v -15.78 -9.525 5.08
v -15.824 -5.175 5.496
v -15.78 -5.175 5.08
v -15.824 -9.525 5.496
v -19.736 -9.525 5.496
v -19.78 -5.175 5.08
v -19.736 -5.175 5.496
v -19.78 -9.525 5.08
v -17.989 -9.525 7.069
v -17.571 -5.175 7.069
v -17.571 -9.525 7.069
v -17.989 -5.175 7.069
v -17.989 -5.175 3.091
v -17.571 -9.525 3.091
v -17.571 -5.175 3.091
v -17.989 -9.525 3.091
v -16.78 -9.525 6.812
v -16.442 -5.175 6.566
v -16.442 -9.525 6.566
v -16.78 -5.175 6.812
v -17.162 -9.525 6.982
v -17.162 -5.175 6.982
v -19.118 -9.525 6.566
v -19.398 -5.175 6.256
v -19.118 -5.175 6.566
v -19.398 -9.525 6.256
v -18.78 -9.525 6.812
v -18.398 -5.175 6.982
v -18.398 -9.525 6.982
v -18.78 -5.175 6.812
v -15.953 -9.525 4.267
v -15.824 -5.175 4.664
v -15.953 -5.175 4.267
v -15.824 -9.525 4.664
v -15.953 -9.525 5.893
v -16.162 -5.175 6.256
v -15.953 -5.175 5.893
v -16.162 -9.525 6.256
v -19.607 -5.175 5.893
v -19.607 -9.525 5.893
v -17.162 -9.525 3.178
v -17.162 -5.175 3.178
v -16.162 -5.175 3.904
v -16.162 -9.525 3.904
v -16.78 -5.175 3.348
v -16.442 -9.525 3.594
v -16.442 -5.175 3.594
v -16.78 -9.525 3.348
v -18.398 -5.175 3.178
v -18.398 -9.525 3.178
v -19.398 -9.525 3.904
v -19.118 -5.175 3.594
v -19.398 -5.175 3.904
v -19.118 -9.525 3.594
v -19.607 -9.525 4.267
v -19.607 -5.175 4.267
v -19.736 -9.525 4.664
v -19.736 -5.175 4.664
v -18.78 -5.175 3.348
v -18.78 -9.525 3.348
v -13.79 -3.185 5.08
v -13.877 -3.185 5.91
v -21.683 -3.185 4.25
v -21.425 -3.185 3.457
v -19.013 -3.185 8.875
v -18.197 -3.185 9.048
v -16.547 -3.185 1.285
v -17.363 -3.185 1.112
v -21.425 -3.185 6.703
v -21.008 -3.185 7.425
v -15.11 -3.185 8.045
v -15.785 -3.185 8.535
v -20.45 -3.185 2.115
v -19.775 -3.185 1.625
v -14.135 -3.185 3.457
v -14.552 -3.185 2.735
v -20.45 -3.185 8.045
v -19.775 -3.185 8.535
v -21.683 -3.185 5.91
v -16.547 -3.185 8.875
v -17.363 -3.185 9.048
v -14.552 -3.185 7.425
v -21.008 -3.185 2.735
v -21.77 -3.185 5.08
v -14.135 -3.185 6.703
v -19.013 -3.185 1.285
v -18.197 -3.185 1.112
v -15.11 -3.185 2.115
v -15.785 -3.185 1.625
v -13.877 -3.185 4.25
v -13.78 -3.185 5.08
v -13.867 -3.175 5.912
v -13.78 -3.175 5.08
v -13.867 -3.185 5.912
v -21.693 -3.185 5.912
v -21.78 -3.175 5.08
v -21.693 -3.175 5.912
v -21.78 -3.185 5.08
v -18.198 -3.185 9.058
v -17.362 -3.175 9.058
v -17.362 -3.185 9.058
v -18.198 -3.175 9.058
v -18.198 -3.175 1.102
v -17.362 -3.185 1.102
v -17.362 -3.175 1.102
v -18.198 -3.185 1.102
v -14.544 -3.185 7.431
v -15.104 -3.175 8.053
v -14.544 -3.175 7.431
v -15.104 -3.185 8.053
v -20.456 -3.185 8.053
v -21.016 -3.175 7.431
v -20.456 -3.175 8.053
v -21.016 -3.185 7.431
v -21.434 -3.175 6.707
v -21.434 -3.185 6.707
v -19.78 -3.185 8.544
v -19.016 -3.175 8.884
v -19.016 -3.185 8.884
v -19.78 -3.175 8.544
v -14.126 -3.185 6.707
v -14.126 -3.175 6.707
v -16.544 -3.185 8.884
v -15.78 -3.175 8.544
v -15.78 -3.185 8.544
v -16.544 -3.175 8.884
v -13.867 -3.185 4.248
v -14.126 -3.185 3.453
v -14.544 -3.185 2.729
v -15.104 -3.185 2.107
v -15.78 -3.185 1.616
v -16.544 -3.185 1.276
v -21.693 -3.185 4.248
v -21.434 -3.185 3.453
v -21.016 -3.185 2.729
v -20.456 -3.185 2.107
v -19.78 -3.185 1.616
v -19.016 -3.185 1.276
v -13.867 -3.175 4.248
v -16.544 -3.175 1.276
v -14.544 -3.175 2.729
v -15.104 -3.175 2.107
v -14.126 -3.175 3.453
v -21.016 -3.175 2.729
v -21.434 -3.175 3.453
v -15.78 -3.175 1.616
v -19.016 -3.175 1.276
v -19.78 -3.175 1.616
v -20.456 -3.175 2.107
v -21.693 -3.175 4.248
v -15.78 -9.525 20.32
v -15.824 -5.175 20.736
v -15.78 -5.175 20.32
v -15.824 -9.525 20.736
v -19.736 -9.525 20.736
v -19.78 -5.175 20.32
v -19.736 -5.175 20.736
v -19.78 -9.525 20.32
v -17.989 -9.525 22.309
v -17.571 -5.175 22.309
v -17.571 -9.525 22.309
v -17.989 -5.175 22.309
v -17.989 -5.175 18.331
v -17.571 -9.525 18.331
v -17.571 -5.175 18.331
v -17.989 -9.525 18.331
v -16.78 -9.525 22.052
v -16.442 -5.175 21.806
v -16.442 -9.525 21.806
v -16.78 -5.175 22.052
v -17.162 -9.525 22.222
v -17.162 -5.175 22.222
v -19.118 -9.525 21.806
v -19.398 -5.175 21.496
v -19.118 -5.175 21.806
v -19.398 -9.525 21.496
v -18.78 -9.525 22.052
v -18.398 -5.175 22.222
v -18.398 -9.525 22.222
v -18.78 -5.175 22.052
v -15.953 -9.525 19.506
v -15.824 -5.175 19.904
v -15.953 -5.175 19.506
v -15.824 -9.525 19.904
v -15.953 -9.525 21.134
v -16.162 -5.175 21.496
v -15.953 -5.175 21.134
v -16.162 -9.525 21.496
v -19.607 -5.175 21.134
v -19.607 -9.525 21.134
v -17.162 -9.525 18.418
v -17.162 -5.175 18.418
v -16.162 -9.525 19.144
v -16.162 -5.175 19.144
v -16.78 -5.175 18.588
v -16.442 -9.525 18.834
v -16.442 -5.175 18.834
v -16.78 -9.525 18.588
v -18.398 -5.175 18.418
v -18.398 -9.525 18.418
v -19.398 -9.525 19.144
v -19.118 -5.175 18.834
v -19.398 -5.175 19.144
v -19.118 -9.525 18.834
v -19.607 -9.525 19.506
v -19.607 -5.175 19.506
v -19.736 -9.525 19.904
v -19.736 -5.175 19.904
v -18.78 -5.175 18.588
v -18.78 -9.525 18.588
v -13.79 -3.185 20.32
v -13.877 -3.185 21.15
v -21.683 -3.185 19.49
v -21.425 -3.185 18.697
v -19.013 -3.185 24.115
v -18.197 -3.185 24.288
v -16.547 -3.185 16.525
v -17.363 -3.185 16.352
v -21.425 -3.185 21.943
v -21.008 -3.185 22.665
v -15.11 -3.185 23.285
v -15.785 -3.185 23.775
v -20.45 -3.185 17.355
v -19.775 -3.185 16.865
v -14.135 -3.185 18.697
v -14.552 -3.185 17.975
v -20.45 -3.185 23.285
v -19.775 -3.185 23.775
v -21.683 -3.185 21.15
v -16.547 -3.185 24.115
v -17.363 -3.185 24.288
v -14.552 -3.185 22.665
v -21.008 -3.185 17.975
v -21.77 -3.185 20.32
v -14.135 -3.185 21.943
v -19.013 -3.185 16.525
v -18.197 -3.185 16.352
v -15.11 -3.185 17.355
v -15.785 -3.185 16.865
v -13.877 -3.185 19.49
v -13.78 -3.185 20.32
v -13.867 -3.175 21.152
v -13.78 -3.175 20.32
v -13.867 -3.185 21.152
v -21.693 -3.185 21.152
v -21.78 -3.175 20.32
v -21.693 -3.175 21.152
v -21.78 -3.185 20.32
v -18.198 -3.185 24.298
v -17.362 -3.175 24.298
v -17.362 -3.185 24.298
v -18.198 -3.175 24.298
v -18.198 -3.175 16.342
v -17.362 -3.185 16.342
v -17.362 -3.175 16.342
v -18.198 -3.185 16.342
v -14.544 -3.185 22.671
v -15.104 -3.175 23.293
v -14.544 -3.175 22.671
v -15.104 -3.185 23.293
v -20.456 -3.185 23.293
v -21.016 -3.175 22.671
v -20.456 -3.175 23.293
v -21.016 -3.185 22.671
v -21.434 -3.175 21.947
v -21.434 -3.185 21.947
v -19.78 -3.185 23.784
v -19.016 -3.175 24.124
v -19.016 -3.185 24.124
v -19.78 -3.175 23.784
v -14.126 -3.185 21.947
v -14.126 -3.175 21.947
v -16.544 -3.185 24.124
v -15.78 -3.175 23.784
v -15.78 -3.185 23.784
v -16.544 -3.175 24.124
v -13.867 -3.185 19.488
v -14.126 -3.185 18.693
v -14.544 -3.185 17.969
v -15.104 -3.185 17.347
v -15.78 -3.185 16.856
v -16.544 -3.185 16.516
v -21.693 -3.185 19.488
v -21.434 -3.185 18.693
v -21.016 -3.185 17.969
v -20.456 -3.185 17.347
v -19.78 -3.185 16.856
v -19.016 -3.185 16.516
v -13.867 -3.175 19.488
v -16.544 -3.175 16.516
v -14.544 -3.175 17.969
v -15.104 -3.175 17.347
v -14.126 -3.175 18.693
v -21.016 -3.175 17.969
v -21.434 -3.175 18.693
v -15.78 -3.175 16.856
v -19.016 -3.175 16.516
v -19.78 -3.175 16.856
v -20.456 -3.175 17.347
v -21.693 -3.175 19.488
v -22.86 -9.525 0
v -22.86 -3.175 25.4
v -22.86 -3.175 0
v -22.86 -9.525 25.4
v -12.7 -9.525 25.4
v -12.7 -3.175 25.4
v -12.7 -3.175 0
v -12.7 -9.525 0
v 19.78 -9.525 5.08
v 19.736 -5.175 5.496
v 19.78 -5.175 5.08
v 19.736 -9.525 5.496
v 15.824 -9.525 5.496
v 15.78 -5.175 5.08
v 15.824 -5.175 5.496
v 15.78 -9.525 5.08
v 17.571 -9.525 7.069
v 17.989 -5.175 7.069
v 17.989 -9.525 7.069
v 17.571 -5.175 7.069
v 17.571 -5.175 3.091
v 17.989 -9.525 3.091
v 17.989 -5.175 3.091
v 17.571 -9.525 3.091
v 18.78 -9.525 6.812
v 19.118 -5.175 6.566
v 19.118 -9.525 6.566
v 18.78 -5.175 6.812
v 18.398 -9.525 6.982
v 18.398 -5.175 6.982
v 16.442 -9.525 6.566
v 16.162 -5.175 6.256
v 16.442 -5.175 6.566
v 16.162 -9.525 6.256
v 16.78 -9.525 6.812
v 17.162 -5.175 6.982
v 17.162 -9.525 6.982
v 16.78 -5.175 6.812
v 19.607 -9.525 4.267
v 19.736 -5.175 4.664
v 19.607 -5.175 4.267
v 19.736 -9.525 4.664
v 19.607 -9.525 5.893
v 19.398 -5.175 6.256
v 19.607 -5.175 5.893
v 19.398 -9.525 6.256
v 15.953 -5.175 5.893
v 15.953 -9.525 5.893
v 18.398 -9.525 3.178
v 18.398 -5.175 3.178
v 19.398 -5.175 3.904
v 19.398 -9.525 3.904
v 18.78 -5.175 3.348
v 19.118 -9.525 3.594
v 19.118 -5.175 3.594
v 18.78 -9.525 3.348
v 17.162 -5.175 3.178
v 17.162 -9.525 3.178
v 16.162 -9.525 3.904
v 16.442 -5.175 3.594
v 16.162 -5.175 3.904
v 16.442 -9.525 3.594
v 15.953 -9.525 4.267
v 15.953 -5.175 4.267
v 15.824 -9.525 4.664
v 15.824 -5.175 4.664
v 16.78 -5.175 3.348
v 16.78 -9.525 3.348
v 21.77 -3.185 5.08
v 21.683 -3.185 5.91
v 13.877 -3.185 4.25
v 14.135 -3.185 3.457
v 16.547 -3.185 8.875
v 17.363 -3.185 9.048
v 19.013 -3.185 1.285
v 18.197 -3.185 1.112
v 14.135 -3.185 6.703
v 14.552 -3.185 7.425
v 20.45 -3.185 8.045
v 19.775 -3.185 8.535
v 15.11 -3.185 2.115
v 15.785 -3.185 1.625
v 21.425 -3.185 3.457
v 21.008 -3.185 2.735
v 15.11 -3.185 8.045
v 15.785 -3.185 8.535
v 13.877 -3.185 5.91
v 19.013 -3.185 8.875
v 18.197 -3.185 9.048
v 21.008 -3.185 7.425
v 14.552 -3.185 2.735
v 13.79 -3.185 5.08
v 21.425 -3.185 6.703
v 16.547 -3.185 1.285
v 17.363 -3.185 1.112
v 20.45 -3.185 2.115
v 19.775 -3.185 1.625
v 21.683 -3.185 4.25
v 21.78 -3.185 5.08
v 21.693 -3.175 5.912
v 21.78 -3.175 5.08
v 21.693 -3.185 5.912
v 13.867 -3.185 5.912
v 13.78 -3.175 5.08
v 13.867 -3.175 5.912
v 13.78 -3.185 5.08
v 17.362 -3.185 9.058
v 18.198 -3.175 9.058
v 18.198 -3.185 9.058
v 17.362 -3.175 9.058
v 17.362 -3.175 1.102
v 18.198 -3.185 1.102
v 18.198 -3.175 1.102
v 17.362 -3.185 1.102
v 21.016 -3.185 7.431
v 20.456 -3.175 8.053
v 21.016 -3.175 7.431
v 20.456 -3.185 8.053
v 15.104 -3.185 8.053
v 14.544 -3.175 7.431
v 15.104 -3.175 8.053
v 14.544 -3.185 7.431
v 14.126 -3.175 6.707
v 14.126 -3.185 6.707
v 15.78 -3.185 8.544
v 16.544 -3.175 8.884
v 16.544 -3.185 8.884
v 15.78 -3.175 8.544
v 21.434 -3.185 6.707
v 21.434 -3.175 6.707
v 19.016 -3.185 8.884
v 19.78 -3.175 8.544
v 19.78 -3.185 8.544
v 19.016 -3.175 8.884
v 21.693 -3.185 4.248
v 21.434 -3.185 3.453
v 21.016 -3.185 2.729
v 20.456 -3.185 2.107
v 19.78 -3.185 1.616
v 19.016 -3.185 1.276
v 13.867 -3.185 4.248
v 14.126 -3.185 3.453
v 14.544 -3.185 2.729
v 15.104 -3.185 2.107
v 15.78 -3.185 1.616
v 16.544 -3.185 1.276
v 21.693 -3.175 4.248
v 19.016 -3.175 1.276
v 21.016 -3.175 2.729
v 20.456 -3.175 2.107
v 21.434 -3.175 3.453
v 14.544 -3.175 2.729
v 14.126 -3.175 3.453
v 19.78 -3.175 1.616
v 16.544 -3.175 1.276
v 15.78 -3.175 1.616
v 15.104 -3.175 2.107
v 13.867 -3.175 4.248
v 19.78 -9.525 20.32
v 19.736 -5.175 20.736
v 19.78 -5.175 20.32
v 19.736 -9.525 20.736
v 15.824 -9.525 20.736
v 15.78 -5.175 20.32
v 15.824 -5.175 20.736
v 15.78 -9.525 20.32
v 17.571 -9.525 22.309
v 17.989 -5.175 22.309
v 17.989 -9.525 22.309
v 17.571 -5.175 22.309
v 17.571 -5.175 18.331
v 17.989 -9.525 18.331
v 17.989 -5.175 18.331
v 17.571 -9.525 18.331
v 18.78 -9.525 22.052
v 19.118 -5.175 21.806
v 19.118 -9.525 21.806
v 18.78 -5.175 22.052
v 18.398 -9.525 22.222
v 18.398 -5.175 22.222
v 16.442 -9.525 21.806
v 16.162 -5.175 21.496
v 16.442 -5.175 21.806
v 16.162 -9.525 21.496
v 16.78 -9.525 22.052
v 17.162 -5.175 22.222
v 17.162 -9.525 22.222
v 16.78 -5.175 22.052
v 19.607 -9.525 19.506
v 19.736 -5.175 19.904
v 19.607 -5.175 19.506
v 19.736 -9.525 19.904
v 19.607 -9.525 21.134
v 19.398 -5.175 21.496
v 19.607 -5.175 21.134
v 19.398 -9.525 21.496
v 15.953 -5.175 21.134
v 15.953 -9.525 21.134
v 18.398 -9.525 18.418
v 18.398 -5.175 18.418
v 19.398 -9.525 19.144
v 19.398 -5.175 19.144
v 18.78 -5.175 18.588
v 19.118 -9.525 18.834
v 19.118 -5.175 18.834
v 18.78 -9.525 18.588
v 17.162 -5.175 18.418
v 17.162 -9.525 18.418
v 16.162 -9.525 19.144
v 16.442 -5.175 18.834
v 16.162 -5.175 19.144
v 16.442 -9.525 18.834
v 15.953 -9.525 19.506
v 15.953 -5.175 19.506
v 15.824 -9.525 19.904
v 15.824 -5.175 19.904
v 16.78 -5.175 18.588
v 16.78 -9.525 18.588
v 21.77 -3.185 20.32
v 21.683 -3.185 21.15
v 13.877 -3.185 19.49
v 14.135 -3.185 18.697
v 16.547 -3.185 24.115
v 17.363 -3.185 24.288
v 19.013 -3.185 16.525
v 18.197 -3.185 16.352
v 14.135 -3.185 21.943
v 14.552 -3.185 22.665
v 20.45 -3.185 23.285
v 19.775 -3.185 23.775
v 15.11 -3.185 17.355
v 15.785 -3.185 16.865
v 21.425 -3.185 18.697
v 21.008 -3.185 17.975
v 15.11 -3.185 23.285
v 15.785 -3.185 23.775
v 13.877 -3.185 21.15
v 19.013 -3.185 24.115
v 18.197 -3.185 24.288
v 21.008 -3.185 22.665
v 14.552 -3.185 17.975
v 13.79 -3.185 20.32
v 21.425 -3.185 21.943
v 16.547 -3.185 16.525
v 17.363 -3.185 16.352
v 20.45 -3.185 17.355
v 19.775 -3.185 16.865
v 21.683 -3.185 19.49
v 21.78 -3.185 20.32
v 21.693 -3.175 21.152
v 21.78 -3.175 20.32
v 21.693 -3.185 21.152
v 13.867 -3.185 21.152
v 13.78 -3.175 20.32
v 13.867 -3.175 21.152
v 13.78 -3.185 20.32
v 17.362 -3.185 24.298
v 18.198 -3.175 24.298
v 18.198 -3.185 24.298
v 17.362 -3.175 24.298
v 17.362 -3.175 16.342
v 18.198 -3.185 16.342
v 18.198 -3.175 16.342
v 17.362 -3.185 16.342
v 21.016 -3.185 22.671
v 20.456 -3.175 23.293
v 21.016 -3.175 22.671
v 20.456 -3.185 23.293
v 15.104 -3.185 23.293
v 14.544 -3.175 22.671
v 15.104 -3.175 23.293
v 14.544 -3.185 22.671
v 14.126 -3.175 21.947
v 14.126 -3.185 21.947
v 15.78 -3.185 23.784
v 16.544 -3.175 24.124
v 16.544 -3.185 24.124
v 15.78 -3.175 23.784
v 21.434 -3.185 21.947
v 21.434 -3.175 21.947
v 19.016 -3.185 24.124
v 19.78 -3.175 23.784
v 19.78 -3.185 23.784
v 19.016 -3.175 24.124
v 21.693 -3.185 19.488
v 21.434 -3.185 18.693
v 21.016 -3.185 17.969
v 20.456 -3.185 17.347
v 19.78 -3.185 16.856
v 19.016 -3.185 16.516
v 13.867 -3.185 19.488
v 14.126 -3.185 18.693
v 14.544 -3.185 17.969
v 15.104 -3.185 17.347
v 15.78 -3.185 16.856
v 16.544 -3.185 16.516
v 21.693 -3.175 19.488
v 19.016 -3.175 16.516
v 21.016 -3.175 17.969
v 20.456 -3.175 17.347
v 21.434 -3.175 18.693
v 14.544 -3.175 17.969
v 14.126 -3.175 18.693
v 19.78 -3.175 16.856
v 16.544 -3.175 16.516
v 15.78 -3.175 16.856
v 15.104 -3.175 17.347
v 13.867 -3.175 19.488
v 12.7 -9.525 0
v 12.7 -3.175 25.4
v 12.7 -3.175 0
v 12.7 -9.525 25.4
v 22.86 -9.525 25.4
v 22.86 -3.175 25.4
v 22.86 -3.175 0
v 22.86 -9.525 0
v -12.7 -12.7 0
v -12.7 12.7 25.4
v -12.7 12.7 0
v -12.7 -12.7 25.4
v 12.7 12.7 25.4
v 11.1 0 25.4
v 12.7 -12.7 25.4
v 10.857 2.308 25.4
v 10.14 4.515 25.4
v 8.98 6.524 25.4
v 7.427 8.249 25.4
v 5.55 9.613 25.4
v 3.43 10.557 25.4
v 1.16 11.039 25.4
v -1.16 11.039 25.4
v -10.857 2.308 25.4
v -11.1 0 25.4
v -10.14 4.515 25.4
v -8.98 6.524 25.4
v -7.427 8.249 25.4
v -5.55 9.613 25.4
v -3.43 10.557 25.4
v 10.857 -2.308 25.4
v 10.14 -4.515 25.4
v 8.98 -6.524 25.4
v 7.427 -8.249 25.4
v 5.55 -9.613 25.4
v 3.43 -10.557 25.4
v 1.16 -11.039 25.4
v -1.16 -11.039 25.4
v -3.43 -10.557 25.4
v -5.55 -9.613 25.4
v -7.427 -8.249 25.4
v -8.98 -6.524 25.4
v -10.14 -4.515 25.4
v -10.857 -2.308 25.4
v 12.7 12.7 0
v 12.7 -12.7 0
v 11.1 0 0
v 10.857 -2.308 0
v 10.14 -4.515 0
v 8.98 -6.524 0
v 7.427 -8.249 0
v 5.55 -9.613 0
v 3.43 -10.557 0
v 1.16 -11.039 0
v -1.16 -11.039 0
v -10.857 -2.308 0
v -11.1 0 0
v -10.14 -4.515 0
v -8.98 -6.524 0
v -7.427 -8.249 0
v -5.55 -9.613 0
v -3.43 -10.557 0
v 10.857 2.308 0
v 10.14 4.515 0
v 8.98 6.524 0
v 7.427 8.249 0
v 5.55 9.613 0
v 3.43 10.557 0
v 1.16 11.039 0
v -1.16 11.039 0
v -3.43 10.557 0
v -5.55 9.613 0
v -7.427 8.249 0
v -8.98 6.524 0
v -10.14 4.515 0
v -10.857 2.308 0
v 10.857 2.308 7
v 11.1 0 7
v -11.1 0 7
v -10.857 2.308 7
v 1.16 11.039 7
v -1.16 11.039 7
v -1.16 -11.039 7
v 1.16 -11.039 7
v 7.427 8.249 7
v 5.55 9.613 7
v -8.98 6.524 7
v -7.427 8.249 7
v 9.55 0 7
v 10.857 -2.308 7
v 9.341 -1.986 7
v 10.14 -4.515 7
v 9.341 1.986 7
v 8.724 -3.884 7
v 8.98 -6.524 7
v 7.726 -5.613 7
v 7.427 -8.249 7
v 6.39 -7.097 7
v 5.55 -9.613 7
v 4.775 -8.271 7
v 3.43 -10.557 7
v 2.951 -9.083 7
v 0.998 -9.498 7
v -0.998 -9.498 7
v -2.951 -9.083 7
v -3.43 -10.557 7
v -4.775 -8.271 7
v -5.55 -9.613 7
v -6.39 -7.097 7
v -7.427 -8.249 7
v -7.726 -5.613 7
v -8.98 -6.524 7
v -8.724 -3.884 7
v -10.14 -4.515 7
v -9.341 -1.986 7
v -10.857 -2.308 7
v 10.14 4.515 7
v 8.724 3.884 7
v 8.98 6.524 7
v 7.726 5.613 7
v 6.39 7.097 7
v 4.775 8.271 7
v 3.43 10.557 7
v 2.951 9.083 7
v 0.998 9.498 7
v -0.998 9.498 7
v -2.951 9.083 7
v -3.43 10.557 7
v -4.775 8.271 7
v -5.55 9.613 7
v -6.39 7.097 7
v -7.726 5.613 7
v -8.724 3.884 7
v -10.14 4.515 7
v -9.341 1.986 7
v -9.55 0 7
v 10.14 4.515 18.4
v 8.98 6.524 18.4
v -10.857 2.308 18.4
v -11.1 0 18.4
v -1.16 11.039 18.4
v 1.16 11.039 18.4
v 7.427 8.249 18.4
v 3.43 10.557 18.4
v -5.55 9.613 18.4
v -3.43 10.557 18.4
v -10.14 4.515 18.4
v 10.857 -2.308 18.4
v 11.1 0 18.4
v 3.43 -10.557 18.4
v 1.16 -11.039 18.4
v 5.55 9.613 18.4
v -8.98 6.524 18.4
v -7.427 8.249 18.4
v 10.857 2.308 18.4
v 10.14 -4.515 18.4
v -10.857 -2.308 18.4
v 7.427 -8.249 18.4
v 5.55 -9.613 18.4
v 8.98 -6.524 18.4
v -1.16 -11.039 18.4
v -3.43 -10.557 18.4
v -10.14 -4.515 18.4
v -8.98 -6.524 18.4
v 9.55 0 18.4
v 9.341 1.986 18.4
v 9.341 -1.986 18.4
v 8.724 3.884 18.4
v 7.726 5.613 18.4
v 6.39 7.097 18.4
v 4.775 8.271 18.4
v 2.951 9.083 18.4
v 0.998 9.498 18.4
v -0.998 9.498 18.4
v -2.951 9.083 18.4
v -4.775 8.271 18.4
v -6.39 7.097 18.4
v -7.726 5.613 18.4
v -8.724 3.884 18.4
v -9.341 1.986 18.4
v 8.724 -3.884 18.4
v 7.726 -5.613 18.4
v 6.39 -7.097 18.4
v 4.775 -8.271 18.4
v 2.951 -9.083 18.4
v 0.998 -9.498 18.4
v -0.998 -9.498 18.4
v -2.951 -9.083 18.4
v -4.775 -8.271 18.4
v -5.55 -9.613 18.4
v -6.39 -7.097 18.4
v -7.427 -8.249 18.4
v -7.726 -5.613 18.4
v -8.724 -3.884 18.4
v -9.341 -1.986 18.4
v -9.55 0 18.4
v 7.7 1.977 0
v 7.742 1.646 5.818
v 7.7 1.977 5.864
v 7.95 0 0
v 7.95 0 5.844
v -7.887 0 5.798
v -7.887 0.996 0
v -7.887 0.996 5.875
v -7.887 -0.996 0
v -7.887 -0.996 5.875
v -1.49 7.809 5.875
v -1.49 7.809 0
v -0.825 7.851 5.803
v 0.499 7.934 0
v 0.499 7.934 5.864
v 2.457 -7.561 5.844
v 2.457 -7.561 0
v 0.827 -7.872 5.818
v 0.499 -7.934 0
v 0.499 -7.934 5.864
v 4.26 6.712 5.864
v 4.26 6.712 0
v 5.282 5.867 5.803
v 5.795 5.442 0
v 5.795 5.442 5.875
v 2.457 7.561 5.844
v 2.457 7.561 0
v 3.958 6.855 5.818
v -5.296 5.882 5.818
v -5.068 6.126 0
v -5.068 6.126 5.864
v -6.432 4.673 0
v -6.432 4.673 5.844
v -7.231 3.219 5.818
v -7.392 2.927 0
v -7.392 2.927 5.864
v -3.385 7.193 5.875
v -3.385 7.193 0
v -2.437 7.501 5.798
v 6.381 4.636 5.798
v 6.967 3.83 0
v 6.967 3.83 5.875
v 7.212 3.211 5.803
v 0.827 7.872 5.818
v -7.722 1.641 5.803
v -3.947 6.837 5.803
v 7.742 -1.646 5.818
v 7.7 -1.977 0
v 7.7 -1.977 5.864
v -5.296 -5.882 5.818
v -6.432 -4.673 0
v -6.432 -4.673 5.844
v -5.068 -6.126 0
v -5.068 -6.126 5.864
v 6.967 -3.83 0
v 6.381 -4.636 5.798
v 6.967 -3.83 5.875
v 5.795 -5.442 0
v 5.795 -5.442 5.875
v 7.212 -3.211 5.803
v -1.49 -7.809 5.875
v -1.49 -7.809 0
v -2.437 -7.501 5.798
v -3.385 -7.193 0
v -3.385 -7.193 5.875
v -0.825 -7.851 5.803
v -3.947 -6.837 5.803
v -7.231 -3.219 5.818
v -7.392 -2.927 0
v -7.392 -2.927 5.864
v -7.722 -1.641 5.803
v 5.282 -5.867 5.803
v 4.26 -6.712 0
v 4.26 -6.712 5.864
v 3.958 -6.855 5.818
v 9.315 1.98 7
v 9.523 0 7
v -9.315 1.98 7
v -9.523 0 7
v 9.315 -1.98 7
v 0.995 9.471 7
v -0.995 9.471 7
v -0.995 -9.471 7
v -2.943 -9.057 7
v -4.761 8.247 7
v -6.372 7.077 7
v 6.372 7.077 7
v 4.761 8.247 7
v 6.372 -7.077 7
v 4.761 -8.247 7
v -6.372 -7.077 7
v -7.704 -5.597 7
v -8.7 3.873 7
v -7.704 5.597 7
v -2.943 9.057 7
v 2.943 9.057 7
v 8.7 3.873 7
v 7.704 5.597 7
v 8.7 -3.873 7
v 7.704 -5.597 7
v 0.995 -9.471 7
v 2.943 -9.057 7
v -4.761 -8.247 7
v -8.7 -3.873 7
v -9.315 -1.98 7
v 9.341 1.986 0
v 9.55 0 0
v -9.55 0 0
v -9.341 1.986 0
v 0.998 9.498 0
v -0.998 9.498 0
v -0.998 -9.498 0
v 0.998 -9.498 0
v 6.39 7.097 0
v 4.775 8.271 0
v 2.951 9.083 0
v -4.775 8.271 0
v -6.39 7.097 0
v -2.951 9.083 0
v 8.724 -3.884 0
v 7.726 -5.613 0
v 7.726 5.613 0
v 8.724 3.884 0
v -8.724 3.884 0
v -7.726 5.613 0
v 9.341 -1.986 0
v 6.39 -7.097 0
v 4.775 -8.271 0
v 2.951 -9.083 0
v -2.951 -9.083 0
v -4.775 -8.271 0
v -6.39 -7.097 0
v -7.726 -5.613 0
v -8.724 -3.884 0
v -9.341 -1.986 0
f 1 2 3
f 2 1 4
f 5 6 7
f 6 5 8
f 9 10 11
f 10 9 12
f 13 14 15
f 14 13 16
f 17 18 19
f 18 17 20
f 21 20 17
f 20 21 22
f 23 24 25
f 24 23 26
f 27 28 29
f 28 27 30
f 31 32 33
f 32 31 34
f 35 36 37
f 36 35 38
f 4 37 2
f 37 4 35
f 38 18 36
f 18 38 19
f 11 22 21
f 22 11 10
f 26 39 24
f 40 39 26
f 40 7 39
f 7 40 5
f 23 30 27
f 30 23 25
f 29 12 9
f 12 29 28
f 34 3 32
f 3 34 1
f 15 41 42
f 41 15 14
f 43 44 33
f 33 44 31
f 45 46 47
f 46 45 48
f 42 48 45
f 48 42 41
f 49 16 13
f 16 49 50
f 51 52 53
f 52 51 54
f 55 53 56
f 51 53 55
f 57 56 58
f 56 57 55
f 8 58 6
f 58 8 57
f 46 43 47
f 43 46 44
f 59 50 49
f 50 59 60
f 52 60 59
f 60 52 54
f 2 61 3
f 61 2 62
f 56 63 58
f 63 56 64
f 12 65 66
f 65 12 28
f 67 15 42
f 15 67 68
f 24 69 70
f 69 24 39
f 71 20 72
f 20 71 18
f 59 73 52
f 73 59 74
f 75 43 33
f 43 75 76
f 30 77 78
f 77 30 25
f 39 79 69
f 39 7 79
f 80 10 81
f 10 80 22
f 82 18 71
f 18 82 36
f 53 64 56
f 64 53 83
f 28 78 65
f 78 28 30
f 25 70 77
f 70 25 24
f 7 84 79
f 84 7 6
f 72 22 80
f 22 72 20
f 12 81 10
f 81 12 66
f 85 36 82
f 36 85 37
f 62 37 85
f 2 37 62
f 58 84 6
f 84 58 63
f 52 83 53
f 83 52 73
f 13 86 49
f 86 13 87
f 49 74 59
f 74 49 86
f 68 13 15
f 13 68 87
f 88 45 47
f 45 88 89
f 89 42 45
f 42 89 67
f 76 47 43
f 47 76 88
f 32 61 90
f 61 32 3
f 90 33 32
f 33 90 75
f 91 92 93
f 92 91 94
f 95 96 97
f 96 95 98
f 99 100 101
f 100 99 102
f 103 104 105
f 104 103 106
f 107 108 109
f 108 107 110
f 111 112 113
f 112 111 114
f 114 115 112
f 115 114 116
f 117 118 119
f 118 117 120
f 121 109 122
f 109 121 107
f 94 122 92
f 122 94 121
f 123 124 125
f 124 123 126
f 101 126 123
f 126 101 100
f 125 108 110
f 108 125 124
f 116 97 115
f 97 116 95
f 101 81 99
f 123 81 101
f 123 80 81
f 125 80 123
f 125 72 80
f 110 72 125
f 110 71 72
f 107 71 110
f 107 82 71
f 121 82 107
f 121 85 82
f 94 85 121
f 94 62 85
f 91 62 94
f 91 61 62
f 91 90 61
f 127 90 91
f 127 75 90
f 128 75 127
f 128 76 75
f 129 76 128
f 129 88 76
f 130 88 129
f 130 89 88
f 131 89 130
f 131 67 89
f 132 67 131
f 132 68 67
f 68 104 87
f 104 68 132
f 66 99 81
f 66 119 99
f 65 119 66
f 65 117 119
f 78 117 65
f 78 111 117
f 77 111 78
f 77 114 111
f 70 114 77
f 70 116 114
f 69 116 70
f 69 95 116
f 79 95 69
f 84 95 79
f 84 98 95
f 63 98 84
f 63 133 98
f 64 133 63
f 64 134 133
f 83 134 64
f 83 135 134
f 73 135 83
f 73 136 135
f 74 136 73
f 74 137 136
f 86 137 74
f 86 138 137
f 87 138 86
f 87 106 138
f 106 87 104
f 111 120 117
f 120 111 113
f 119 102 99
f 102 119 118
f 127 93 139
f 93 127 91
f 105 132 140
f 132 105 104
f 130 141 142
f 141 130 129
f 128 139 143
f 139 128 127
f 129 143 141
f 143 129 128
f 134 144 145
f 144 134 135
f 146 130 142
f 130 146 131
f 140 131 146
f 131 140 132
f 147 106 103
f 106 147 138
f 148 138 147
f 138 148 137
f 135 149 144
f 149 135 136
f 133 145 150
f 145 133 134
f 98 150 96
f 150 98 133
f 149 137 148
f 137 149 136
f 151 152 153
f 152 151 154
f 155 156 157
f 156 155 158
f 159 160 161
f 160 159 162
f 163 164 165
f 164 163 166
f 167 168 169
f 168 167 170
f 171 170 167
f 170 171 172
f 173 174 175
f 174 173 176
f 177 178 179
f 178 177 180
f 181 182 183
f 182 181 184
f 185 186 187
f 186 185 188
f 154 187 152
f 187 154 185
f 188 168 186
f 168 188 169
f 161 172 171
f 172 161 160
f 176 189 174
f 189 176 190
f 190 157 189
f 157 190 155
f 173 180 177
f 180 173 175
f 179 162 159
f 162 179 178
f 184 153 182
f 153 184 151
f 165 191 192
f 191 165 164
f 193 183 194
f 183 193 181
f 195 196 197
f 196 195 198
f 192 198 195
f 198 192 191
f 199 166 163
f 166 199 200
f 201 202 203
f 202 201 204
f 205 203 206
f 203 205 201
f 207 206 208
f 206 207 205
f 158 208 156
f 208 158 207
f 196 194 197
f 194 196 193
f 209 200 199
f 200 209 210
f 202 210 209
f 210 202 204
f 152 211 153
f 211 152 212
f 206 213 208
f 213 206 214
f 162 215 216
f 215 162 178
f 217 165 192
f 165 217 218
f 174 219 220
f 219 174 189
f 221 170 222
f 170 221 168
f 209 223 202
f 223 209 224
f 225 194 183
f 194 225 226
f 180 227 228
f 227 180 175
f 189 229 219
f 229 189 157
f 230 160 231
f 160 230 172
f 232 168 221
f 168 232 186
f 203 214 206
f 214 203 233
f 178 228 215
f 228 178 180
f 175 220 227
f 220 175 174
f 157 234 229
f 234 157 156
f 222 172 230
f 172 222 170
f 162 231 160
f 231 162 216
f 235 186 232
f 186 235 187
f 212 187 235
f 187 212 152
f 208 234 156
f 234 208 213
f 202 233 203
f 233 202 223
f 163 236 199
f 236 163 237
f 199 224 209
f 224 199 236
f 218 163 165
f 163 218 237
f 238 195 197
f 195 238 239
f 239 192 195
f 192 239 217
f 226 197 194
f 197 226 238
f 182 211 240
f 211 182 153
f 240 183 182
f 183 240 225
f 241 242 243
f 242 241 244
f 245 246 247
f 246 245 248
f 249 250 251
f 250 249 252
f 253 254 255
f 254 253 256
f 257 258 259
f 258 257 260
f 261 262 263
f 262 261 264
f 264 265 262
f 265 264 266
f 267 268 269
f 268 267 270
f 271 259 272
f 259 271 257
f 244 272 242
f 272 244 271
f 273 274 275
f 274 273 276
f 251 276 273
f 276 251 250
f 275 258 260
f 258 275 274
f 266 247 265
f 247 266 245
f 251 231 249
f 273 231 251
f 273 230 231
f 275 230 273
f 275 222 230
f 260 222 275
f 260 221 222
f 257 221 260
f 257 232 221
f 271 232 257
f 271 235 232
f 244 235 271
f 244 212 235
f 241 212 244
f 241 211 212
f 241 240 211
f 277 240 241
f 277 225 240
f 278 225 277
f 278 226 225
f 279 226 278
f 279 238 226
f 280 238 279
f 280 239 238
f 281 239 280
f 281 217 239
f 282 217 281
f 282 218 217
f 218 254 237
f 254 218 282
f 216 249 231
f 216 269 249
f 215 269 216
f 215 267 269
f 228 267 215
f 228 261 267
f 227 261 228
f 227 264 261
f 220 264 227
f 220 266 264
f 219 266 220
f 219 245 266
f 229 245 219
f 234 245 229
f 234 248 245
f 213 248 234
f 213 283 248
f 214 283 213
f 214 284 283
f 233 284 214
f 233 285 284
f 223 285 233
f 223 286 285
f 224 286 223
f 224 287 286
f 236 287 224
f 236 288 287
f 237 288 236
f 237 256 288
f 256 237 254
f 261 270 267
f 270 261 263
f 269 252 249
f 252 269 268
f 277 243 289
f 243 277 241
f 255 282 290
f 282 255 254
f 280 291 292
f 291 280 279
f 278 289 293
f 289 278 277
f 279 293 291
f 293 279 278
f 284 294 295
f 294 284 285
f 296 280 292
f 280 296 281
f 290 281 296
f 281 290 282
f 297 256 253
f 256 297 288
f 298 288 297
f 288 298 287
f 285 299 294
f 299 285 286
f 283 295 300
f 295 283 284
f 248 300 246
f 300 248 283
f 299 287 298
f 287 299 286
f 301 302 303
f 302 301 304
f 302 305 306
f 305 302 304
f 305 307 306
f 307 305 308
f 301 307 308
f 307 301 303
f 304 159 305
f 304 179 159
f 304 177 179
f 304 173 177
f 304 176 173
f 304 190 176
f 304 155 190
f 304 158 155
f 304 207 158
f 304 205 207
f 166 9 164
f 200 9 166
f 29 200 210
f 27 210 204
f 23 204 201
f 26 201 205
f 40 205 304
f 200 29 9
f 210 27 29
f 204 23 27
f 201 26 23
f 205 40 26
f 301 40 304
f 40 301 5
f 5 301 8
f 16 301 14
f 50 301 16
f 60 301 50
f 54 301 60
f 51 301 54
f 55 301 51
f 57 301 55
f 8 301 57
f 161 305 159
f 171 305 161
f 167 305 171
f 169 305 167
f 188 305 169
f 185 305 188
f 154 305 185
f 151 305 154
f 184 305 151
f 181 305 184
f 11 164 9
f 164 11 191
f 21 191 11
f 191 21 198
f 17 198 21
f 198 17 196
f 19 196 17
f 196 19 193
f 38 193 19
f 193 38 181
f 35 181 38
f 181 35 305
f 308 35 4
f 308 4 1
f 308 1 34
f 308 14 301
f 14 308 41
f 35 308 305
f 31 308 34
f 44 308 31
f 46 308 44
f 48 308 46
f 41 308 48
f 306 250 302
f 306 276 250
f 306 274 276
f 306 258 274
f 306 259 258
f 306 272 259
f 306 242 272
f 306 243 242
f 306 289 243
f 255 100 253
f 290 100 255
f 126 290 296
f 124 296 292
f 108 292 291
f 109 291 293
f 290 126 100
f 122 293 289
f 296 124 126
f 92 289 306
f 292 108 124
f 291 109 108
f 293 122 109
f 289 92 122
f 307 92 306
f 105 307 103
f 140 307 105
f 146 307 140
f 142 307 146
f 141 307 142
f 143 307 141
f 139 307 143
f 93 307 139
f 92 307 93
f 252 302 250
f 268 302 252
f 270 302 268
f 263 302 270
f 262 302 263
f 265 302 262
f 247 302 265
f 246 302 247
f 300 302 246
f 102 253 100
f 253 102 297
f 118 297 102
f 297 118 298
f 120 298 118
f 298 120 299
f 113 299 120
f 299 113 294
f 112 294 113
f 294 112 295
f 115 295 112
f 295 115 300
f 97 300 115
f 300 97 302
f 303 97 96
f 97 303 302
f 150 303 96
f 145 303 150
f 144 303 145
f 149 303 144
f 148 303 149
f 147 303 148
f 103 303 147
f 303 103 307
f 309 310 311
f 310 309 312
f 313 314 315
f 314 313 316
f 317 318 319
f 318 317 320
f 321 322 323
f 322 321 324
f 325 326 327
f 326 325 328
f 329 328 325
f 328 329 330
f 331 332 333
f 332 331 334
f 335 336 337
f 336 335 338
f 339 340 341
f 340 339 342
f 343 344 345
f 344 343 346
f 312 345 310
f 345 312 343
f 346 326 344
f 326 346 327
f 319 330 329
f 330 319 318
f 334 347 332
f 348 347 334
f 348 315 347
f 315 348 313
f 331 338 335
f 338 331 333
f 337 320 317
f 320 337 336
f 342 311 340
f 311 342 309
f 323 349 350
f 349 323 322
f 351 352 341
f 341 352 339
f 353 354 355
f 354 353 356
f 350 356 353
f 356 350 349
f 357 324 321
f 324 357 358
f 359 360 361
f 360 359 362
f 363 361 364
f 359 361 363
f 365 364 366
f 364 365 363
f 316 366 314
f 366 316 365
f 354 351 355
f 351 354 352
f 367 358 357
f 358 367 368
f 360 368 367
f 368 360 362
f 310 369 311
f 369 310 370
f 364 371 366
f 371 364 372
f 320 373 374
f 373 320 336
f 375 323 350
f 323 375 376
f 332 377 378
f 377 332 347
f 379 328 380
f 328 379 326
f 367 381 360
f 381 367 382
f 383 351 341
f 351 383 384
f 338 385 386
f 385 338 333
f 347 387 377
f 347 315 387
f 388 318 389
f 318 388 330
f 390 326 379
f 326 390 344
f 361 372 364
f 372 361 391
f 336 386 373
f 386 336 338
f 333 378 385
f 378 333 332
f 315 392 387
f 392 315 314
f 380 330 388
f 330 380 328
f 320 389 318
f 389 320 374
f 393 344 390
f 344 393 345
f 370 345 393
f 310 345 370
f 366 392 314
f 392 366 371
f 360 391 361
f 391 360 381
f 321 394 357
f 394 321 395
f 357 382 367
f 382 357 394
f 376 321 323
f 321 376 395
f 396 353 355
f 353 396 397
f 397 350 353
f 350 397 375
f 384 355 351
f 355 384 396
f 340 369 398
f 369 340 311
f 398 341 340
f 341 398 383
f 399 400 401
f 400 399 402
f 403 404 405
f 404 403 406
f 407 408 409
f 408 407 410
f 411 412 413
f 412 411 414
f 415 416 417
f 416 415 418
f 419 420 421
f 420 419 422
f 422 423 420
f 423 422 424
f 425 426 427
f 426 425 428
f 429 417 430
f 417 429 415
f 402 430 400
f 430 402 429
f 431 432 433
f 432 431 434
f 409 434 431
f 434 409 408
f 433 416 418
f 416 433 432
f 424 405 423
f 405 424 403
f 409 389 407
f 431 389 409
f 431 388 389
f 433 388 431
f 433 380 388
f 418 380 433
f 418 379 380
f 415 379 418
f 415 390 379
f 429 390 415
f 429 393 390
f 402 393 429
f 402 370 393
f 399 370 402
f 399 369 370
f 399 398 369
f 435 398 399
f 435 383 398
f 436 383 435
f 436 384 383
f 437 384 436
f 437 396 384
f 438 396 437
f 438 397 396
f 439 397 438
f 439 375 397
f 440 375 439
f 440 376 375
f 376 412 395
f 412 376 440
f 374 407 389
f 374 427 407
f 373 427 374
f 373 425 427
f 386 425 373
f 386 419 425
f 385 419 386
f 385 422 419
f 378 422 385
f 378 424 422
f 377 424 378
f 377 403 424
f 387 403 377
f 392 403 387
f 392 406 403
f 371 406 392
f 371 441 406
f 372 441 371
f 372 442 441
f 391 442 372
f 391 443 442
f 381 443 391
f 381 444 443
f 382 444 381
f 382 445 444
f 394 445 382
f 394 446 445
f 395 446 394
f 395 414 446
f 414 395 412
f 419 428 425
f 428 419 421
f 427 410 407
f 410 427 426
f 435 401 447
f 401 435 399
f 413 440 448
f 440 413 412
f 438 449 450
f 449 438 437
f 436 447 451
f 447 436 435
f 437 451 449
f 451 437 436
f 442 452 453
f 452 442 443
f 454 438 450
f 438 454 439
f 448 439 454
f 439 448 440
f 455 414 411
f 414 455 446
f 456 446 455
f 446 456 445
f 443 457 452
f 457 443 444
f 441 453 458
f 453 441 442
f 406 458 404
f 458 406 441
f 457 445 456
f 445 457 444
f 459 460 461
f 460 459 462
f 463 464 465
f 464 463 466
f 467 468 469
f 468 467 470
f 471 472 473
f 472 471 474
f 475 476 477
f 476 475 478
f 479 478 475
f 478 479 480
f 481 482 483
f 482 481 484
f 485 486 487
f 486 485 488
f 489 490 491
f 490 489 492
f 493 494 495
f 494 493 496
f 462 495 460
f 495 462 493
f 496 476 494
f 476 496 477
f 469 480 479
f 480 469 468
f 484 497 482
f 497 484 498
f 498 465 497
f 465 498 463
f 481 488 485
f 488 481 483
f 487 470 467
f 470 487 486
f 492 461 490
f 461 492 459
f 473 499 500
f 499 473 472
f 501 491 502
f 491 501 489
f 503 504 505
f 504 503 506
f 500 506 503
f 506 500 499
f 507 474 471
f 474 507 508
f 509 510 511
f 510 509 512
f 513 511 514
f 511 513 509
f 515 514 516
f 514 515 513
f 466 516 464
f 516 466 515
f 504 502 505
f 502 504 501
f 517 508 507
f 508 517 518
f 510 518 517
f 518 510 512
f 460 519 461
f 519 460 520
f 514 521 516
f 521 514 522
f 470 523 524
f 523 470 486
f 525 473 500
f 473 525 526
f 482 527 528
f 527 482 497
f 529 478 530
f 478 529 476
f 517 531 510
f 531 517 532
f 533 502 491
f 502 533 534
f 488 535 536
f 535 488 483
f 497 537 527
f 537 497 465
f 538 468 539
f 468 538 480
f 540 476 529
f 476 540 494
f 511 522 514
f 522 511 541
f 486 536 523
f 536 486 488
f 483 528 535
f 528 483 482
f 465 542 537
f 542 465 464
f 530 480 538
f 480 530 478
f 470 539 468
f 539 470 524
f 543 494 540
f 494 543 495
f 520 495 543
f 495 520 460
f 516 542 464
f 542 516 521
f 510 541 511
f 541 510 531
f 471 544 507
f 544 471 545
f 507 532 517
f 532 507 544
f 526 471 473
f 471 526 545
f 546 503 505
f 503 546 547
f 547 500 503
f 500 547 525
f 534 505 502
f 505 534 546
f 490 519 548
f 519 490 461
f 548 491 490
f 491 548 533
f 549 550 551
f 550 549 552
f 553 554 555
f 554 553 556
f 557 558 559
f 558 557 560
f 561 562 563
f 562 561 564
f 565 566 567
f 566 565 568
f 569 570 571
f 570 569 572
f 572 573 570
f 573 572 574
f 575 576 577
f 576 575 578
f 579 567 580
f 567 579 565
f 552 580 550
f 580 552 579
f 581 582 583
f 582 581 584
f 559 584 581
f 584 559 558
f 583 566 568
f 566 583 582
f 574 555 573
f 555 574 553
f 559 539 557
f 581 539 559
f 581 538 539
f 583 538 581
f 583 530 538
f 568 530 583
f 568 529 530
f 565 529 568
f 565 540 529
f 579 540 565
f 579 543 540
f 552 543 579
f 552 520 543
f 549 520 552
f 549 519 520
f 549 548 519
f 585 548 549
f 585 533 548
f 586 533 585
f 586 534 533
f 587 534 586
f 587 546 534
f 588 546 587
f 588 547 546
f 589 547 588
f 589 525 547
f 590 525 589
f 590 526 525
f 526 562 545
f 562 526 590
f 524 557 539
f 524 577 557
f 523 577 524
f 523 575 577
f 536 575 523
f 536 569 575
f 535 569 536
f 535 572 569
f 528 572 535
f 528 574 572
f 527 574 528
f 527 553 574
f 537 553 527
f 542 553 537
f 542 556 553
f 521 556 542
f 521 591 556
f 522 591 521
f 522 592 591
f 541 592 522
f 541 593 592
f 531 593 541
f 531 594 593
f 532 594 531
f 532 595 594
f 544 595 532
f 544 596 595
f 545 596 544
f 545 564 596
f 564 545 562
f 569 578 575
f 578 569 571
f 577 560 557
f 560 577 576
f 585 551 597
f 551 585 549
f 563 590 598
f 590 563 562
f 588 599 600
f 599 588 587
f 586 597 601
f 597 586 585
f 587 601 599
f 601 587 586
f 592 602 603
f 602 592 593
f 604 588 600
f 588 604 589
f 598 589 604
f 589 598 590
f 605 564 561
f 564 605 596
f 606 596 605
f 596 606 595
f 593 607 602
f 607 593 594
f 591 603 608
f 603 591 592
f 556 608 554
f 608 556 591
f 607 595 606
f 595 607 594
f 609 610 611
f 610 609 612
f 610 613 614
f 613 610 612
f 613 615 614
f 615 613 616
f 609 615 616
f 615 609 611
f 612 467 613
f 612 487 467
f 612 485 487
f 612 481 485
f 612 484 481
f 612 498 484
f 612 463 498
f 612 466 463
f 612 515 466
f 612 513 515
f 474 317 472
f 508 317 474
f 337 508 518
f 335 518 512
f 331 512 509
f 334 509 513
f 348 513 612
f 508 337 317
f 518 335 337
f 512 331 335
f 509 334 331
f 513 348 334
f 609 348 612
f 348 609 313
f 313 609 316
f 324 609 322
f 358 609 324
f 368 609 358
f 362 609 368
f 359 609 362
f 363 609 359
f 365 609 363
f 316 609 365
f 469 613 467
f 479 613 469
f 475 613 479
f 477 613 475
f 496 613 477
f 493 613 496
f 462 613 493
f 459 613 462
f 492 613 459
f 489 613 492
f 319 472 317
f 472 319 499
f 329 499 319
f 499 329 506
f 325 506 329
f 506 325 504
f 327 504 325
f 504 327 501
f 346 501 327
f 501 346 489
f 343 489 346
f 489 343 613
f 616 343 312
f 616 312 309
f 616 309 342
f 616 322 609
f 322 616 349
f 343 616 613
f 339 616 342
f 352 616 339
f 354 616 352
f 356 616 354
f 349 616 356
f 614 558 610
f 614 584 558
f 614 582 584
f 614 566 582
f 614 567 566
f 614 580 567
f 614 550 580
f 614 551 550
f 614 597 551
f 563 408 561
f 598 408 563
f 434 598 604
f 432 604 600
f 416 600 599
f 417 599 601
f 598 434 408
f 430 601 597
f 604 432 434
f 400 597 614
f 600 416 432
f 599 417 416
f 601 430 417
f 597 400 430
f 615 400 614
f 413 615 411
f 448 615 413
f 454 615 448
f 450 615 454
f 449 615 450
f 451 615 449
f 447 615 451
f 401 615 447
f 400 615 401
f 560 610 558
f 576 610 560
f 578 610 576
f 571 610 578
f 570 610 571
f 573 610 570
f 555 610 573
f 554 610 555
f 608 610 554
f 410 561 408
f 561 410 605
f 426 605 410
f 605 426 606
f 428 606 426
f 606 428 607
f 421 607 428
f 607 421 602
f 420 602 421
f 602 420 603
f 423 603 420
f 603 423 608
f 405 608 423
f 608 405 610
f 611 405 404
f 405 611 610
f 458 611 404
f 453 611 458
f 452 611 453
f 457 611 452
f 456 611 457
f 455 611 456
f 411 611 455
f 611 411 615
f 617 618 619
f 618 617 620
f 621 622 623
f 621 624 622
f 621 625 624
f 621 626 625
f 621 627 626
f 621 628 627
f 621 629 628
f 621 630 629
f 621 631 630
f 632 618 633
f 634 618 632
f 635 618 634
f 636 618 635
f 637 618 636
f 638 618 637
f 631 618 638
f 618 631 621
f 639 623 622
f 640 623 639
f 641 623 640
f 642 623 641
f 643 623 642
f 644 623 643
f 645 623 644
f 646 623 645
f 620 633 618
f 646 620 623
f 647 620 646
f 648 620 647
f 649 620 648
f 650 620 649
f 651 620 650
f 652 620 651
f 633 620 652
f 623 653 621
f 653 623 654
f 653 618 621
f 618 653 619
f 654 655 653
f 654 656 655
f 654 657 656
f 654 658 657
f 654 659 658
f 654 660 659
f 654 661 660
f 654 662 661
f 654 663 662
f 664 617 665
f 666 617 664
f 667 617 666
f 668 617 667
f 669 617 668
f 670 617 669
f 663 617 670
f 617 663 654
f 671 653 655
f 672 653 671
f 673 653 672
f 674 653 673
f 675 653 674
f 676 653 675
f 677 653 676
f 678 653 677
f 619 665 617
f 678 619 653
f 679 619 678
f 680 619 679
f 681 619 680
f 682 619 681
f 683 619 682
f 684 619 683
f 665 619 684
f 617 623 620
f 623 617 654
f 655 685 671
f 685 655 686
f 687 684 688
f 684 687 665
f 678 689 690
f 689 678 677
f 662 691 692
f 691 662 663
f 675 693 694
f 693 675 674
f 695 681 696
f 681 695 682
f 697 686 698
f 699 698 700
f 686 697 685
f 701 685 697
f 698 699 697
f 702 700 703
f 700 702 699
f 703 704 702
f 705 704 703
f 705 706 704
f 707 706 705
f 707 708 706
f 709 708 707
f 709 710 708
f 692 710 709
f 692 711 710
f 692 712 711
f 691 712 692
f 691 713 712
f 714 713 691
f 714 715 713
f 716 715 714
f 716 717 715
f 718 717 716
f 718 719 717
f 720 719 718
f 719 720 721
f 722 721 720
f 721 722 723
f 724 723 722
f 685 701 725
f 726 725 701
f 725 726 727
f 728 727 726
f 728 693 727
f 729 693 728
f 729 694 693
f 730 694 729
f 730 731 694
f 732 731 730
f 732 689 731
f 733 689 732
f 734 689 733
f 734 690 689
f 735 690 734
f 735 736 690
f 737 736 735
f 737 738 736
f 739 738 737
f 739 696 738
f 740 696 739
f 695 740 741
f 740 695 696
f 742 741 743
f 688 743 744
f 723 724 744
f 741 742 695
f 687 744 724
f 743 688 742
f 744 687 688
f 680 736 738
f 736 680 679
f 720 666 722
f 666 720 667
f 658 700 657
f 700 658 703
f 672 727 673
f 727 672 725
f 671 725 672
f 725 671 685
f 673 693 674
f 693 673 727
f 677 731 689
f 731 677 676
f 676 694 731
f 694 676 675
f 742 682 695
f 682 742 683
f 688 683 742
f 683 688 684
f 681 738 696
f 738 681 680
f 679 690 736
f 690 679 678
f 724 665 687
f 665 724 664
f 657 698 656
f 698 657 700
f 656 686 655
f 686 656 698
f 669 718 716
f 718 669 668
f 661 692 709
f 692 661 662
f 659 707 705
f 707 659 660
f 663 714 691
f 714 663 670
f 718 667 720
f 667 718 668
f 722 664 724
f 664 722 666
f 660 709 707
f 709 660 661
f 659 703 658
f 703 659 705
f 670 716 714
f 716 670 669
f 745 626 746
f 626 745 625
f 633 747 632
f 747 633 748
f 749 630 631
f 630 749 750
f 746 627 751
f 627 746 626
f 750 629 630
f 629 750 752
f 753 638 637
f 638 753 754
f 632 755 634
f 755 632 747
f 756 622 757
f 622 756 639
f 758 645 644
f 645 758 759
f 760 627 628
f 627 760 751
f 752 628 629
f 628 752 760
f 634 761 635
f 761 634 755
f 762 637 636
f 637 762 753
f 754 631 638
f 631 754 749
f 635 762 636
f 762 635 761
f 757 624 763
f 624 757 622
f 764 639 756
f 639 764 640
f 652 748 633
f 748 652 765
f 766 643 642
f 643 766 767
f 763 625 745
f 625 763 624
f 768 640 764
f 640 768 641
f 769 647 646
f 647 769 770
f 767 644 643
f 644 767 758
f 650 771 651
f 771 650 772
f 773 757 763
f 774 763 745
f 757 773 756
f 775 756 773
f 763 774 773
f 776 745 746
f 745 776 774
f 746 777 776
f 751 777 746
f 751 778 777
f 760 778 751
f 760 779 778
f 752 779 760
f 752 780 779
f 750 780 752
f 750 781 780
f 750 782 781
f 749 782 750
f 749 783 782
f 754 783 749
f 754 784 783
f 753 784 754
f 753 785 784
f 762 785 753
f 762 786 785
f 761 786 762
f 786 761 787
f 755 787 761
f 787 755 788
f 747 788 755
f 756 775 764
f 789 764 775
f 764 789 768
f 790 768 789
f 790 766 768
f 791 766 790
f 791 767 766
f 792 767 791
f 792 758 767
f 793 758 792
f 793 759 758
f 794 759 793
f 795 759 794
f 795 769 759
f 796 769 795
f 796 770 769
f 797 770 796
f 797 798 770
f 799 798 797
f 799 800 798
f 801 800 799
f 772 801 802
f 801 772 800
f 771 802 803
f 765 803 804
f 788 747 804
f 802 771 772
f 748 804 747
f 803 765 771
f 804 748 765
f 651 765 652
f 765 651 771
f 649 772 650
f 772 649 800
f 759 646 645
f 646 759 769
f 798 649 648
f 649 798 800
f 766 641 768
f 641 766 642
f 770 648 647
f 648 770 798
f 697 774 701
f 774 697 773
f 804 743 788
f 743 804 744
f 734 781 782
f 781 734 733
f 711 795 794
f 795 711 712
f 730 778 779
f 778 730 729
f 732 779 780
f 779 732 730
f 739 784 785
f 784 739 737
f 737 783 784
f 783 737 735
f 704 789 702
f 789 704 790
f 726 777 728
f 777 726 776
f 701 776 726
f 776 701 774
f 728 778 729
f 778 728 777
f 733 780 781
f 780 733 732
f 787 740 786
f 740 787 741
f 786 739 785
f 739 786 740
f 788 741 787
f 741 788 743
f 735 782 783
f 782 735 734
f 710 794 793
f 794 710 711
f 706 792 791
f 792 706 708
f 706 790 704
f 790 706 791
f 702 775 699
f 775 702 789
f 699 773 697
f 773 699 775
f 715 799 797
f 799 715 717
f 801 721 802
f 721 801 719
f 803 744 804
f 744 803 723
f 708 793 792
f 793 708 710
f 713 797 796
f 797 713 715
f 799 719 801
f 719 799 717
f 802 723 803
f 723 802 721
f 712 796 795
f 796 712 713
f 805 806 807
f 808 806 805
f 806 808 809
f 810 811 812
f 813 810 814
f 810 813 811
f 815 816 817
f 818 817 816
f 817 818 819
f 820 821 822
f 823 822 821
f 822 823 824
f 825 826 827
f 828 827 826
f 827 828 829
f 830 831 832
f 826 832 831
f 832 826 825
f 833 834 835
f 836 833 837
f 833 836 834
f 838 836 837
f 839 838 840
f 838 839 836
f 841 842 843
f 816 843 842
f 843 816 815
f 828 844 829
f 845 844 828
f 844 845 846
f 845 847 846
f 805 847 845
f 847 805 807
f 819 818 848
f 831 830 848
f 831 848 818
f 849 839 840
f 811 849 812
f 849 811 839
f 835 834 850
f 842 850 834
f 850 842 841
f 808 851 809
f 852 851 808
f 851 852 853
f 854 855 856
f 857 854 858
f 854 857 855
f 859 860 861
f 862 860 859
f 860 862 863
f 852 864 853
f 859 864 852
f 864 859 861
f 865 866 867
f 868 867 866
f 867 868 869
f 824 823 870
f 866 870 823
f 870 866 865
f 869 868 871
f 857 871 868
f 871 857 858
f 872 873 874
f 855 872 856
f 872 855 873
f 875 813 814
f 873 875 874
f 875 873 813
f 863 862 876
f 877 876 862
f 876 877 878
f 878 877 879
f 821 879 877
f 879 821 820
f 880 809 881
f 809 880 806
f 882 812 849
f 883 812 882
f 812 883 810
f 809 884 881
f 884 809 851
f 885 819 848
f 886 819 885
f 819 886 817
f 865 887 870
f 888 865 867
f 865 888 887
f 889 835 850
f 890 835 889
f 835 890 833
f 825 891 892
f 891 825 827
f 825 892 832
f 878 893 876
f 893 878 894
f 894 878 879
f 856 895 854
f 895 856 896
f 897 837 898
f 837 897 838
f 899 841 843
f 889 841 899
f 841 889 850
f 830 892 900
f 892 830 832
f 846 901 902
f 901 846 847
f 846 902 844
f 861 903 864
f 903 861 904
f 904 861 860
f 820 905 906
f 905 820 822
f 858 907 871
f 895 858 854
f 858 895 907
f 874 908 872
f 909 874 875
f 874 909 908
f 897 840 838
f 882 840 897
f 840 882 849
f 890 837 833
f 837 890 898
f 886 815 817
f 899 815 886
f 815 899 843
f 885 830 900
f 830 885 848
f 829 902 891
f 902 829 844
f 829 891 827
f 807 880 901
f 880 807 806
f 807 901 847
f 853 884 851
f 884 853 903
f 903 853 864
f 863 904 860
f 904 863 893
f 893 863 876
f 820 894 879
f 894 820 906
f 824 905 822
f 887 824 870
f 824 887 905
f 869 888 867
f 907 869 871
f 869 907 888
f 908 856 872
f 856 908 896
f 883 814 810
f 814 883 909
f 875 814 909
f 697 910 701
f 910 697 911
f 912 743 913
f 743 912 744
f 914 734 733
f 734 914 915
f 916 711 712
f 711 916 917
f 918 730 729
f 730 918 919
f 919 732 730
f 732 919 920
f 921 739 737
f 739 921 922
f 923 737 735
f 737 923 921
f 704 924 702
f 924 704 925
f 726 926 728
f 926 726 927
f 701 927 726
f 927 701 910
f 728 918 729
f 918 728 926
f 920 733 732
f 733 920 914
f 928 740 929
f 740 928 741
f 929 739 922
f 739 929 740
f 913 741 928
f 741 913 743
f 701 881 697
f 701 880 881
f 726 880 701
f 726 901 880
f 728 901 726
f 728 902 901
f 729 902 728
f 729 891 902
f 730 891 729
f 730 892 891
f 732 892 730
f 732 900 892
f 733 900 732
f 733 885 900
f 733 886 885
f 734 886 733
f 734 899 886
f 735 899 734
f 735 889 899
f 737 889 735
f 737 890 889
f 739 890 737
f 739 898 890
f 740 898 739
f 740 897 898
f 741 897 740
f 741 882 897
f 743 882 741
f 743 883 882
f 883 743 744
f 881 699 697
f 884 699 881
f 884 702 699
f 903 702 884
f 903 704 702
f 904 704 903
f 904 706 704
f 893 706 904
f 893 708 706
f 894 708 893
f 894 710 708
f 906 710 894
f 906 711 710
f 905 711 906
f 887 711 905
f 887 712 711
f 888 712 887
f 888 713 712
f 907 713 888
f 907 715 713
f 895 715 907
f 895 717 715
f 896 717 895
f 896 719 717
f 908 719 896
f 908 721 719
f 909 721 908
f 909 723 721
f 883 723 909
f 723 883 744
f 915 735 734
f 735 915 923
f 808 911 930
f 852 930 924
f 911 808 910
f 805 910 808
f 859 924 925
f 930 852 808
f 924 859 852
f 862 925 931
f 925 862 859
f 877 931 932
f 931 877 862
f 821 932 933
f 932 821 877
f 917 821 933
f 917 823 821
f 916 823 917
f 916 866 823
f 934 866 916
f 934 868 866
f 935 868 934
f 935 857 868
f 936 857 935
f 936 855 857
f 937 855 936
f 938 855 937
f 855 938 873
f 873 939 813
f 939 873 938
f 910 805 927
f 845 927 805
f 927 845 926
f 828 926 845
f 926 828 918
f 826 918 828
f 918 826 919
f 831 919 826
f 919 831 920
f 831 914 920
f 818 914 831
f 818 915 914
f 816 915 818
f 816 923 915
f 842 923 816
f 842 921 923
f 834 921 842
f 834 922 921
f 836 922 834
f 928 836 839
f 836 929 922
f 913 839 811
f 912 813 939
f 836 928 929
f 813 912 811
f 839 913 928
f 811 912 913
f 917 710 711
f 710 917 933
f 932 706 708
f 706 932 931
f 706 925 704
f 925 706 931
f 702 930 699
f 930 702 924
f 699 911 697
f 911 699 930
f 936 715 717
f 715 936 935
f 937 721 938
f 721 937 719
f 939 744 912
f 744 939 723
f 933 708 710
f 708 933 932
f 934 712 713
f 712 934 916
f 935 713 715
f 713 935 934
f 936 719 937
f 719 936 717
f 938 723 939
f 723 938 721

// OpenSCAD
mm=1;
in = 25.4*mm;

slop=0.1*mm;
bearing_rad = 22*mm/2 + slop;
bearing_th = 7*mm;
axle_cutout_rad=19.10*mm / 2;  // lifted from the 608zz bearing spec
                               // to stay out of the way of the shield

block_size = 1*in;
wall = 0.8*mm;
eps=0.01;

screw_plate_th = 0.25*in;
screw_plate_width = 0.4*in;
screw_plate_shift = 0.25*in;

screw_dia = 2*mm;
screw_head_dia = 4*mm;
screw_len = 3/4*in;
eps=0.01*mm;

module screw() {
    rotate([90,0,0])
    union(){
        cylinder(r=screw_dia, h=screw_len, $fn=30);
        cylinder(r1=screw_head_dia,r2=0, h=screw_head_dia, $fn=30);
        translate([0,0,-screw_head_dia+eps])
        cylinder(r=screw_head_dia,h=screw_head_dia, $fn=30);
    }
}



module screw_plate() {
    difference() {
        union(){
            
            cube([screw_plate_width, screw_plate_th, block_size], center=true);
        }
        for(shift=(block_size-screw_plate_width)/2* [-1,1]){
            translate([0,screw_plate_th/2,shift])
            screw();
            
        }
    }     
}



module block(){
    translate([0,0,block_size/2])
    difference() {
        union(){
            cube(block_size,center=true);
            for(trans=[-1/2,1/2]) {
                translate([0,-screw_plate_shift,0])
                translate(trans * [block_size+screw_plate_width,0,0])
                screw_plate();
            }
        }
        union(){
            for(side=[-1,1]) {
                translate([0,0,side*block_size/2])
                cylinder(r=bearing_rad,h=2*bearing_th,center=true);
            }


            cylinder(r=axle_cutout_rad, h=2*block_size, center=true);
        }
    }
}

block();
difference(){
    cylinder(r=axle_cutout_rad,h=bearing_th);
    union(){
        translate([0,0,-bearing_th])
        cylinder(r=axle_cutout_rad-2*wall, h=3*bearing_th);
        cylinder(r1=0,r2=axle_cutout_rad,h=bearing_th+2*eps);
    }
}
